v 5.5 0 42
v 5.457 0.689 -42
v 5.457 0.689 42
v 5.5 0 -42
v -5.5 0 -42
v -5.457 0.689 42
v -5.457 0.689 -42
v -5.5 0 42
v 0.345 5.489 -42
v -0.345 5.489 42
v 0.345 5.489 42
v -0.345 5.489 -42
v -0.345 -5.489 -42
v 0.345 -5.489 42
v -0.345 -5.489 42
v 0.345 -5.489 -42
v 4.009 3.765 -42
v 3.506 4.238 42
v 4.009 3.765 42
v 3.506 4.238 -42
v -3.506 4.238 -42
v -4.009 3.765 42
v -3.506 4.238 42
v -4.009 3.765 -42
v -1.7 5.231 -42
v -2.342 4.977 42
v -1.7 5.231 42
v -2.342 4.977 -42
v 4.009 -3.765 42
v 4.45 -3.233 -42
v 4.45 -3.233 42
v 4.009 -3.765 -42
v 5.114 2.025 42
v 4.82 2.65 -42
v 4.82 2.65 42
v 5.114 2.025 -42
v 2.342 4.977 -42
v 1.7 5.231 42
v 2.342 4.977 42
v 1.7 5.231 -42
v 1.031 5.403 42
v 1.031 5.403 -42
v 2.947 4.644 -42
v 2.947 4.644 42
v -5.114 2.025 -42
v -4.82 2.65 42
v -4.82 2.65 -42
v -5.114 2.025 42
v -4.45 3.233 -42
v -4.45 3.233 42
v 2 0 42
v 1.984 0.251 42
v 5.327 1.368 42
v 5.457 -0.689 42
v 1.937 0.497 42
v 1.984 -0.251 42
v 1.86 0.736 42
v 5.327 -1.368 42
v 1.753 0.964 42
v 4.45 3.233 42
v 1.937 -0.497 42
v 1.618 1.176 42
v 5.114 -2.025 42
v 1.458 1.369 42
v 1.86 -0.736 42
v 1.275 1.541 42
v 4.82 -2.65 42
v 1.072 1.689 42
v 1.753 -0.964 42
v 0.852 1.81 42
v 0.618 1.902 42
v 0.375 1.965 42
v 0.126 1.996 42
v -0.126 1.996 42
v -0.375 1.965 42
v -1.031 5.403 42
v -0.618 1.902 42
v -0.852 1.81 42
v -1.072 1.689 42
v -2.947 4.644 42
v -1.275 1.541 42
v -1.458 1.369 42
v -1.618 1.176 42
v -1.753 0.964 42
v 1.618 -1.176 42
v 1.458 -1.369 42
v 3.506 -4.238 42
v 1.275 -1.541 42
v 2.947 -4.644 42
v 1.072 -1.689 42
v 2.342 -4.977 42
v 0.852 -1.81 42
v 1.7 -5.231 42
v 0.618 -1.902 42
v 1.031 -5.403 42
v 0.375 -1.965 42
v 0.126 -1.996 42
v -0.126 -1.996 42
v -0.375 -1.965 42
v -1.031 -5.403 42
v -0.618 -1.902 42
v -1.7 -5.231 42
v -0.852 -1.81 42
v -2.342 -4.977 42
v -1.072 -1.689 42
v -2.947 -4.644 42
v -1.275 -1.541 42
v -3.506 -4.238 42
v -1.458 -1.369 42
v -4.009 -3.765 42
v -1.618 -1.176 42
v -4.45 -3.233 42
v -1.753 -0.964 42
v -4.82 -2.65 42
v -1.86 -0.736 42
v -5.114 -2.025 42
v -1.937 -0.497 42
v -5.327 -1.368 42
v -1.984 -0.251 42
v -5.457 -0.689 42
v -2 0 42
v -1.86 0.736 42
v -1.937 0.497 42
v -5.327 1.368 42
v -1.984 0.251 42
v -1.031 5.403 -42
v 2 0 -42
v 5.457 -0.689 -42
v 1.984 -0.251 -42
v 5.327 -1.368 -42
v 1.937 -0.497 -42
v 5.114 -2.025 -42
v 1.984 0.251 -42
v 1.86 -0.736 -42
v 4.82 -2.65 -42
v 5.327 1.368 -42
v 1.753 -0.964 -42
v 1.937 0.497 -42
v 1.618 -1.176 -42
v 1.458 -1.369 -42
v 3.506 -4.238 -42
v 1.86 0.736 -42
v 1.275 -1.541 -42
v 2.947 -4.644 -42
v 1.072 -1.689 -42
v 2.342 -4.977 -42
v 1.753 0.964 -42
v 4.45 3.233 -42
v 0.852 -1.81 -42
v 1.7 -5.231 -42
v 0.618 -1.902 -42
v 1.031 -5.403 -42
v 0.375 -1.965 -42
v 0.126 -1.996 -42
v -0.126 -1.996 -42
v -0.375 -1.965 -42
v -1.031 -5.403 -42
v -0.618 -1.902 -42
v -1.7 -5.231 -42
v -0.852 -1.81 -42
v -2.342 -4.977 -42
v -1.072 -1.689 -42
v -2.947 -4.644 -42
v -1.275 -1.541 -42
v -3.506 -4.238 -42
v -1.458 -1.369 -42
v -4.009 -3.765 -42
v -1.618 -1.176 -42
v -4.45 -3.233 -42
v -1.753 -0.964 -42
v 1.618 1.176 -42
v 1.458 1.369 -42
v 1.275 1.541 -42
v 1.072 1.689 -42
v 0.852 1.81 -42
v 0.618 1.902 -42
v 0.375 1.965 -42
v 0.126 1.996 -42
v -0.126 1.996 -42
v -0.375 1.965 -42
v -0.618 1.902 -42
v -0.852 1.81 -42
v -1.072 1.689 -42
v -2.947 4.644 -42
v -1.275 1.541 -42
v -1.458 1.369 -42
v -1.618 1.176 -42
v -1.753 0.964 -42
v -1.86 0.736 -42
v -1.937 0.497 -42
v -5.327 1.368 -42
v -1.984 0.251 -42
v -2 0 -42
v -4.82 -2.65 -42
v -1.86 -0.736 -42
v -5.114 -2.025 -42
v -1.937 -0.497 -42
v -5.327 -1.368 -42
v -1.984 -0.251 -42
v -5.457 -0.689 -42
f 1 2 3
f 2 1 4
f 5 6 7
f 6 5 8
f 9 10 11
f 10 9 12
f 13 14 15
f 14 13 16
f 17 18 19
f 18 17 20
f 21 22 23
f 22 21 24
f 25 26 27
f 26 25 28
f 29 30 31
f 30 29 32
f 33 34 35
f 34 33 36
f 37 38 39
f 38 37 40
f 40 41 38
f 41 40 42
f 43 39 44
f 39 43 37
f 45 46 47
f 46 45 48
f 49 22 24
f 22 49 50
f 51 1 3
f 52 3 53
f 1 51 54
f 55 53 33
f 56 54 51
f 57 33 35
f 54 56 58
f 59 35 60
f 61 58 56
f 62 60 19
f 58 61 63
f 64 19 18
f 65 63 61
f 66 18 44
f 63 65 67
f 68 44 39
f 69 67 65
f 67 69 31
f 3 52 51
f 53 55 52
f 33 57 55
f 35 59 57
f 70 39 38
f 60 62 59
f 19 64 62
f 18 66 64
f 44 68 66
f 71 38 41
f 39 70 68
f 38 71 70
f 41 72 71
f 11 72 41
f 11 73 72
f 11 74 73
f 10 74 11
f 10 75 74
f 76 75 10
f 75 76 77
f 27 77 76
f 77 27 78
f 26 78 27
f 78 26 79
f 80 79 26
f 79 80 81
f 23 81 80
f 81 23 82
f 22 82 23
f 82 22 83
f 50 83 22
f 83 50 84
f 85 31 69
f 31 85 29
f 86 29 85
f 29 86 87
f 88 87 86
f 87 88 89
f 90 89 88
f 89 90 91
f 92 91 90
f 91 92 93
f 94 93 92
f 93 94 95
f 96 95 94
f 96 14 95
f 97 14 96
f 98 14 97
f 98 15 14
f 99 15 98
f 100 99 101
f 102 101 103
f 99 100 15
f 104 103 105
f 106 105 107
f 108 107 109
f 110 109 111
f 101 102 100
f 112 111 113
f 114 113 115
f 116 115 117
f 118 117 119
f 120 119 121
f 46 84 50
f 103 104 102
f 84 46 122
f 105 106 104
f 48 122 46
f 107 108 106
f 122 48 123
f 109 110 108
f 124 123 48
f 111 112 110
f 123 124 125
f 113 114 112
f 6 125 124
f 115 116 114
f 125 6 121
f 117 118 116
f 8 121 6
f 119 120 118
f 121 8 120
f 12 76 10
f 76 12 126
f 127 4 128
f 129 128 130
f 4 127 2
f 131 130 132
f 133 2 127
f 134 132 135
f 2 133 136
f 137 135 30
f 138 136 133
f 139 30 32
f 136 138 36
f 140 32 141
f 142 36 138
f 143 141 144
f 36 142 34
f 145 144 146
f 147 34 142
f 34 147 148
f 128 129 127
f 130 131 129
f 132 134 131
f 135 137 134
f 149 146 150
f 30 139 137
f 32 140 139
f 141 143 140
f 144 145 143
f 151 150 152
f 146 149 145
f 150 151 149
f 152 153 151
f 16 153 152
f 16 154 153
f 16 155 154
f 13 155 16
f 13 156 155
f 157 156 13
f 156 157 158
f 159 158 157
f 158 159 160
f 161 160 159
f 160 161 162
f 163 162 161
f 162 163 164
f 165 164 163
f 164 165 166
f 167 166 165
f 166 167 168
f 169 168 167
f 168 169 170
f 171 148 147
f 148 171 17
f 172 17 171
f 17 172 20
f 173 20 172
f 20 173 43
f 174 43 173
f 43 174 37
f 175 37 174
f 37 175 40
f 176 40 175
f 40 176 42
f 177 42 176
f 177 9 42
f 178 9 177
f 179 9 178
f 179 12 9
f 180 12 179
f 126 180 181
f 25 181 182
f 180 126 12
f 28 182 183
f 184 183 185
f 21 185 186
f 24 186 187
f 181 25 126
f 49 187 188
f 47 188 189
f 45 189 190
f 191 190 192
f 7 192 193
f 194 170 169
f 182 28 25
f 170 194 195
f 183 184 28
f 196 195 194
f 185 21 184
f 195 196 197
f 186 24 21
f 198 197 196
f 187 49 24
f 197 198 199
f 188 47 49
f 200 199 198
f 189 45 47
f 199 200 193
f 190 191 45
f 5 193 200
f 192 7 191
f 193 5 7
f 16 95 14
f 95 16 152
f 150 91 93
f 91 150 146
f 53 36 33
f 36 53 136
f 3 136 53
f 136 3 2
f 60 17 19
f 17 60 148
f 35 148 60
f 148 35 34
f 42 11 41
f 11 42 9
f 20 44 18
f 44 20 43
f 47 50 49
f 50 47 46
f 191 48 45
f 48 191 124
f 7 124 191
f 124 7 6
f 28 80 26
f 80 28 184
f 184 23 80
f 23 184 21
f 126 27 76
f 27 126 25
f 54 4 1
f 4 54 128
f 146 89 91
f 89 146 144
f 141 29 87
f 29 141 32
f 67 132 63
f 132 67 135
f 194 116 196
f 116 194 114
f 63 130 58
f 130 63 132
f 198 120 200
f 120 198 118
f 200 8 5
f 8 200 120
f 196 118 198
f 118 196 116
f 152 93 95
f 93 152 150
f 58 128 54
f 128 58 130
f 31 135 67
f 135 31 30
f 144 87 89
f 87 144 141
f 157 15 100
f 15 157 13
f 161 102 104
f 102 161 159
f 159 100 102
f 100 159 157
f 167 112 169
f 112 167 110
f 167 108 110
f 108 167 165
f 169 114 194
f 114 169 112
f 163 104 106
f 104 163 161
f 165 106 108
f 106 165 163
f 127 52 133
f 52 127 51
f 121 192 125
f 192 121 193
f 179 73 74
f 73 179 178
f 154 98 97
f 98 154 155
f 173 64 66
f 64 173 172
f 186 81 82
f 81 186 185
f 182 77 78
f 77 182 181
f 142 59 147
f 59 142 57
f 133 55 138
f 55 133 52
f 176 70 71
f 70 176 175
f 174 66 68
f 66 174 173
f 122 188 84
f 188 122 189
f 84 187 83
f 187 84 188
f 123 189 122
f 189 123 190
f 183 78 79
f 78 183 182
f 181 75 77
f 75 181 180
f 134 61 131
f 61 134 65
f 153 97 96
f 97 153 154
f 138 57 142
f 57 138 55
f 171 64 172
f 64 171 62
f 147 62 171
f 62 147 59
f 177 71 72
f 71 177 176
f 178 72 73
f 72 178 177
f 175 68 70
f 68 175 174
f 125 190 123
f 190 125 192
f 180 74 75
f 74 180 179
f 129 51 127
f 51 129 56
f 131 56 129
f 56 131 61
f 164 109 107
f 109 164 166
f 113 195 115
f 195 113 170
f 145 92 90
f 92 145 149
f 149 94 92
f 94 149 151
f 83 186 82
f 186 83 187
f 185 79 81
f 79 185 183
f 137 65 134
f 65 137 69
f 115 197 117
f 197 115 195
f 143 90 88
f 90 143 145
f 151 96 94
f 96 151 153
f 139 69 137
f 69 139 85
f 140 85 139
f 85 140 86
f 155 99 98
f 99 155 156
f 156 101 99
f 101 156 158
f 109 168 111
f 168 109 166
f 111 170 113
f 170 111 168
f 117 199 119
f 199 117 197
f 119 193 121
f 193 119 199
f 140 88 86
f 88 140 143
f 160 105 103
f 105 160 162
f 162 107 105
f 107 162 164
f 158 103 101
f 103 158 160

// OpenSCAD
$fn = 50;


difference() {
	union() {
		translate(v = [0, 0, -42.0000000000]) {
			cylinder(h = 84, r = 5.5000000000);
		}
	}
	union() {
		translate(v = [0, 0, -100.0000000000]) {
			cylinder(h = 200, r = 2);
		}
	}
}
